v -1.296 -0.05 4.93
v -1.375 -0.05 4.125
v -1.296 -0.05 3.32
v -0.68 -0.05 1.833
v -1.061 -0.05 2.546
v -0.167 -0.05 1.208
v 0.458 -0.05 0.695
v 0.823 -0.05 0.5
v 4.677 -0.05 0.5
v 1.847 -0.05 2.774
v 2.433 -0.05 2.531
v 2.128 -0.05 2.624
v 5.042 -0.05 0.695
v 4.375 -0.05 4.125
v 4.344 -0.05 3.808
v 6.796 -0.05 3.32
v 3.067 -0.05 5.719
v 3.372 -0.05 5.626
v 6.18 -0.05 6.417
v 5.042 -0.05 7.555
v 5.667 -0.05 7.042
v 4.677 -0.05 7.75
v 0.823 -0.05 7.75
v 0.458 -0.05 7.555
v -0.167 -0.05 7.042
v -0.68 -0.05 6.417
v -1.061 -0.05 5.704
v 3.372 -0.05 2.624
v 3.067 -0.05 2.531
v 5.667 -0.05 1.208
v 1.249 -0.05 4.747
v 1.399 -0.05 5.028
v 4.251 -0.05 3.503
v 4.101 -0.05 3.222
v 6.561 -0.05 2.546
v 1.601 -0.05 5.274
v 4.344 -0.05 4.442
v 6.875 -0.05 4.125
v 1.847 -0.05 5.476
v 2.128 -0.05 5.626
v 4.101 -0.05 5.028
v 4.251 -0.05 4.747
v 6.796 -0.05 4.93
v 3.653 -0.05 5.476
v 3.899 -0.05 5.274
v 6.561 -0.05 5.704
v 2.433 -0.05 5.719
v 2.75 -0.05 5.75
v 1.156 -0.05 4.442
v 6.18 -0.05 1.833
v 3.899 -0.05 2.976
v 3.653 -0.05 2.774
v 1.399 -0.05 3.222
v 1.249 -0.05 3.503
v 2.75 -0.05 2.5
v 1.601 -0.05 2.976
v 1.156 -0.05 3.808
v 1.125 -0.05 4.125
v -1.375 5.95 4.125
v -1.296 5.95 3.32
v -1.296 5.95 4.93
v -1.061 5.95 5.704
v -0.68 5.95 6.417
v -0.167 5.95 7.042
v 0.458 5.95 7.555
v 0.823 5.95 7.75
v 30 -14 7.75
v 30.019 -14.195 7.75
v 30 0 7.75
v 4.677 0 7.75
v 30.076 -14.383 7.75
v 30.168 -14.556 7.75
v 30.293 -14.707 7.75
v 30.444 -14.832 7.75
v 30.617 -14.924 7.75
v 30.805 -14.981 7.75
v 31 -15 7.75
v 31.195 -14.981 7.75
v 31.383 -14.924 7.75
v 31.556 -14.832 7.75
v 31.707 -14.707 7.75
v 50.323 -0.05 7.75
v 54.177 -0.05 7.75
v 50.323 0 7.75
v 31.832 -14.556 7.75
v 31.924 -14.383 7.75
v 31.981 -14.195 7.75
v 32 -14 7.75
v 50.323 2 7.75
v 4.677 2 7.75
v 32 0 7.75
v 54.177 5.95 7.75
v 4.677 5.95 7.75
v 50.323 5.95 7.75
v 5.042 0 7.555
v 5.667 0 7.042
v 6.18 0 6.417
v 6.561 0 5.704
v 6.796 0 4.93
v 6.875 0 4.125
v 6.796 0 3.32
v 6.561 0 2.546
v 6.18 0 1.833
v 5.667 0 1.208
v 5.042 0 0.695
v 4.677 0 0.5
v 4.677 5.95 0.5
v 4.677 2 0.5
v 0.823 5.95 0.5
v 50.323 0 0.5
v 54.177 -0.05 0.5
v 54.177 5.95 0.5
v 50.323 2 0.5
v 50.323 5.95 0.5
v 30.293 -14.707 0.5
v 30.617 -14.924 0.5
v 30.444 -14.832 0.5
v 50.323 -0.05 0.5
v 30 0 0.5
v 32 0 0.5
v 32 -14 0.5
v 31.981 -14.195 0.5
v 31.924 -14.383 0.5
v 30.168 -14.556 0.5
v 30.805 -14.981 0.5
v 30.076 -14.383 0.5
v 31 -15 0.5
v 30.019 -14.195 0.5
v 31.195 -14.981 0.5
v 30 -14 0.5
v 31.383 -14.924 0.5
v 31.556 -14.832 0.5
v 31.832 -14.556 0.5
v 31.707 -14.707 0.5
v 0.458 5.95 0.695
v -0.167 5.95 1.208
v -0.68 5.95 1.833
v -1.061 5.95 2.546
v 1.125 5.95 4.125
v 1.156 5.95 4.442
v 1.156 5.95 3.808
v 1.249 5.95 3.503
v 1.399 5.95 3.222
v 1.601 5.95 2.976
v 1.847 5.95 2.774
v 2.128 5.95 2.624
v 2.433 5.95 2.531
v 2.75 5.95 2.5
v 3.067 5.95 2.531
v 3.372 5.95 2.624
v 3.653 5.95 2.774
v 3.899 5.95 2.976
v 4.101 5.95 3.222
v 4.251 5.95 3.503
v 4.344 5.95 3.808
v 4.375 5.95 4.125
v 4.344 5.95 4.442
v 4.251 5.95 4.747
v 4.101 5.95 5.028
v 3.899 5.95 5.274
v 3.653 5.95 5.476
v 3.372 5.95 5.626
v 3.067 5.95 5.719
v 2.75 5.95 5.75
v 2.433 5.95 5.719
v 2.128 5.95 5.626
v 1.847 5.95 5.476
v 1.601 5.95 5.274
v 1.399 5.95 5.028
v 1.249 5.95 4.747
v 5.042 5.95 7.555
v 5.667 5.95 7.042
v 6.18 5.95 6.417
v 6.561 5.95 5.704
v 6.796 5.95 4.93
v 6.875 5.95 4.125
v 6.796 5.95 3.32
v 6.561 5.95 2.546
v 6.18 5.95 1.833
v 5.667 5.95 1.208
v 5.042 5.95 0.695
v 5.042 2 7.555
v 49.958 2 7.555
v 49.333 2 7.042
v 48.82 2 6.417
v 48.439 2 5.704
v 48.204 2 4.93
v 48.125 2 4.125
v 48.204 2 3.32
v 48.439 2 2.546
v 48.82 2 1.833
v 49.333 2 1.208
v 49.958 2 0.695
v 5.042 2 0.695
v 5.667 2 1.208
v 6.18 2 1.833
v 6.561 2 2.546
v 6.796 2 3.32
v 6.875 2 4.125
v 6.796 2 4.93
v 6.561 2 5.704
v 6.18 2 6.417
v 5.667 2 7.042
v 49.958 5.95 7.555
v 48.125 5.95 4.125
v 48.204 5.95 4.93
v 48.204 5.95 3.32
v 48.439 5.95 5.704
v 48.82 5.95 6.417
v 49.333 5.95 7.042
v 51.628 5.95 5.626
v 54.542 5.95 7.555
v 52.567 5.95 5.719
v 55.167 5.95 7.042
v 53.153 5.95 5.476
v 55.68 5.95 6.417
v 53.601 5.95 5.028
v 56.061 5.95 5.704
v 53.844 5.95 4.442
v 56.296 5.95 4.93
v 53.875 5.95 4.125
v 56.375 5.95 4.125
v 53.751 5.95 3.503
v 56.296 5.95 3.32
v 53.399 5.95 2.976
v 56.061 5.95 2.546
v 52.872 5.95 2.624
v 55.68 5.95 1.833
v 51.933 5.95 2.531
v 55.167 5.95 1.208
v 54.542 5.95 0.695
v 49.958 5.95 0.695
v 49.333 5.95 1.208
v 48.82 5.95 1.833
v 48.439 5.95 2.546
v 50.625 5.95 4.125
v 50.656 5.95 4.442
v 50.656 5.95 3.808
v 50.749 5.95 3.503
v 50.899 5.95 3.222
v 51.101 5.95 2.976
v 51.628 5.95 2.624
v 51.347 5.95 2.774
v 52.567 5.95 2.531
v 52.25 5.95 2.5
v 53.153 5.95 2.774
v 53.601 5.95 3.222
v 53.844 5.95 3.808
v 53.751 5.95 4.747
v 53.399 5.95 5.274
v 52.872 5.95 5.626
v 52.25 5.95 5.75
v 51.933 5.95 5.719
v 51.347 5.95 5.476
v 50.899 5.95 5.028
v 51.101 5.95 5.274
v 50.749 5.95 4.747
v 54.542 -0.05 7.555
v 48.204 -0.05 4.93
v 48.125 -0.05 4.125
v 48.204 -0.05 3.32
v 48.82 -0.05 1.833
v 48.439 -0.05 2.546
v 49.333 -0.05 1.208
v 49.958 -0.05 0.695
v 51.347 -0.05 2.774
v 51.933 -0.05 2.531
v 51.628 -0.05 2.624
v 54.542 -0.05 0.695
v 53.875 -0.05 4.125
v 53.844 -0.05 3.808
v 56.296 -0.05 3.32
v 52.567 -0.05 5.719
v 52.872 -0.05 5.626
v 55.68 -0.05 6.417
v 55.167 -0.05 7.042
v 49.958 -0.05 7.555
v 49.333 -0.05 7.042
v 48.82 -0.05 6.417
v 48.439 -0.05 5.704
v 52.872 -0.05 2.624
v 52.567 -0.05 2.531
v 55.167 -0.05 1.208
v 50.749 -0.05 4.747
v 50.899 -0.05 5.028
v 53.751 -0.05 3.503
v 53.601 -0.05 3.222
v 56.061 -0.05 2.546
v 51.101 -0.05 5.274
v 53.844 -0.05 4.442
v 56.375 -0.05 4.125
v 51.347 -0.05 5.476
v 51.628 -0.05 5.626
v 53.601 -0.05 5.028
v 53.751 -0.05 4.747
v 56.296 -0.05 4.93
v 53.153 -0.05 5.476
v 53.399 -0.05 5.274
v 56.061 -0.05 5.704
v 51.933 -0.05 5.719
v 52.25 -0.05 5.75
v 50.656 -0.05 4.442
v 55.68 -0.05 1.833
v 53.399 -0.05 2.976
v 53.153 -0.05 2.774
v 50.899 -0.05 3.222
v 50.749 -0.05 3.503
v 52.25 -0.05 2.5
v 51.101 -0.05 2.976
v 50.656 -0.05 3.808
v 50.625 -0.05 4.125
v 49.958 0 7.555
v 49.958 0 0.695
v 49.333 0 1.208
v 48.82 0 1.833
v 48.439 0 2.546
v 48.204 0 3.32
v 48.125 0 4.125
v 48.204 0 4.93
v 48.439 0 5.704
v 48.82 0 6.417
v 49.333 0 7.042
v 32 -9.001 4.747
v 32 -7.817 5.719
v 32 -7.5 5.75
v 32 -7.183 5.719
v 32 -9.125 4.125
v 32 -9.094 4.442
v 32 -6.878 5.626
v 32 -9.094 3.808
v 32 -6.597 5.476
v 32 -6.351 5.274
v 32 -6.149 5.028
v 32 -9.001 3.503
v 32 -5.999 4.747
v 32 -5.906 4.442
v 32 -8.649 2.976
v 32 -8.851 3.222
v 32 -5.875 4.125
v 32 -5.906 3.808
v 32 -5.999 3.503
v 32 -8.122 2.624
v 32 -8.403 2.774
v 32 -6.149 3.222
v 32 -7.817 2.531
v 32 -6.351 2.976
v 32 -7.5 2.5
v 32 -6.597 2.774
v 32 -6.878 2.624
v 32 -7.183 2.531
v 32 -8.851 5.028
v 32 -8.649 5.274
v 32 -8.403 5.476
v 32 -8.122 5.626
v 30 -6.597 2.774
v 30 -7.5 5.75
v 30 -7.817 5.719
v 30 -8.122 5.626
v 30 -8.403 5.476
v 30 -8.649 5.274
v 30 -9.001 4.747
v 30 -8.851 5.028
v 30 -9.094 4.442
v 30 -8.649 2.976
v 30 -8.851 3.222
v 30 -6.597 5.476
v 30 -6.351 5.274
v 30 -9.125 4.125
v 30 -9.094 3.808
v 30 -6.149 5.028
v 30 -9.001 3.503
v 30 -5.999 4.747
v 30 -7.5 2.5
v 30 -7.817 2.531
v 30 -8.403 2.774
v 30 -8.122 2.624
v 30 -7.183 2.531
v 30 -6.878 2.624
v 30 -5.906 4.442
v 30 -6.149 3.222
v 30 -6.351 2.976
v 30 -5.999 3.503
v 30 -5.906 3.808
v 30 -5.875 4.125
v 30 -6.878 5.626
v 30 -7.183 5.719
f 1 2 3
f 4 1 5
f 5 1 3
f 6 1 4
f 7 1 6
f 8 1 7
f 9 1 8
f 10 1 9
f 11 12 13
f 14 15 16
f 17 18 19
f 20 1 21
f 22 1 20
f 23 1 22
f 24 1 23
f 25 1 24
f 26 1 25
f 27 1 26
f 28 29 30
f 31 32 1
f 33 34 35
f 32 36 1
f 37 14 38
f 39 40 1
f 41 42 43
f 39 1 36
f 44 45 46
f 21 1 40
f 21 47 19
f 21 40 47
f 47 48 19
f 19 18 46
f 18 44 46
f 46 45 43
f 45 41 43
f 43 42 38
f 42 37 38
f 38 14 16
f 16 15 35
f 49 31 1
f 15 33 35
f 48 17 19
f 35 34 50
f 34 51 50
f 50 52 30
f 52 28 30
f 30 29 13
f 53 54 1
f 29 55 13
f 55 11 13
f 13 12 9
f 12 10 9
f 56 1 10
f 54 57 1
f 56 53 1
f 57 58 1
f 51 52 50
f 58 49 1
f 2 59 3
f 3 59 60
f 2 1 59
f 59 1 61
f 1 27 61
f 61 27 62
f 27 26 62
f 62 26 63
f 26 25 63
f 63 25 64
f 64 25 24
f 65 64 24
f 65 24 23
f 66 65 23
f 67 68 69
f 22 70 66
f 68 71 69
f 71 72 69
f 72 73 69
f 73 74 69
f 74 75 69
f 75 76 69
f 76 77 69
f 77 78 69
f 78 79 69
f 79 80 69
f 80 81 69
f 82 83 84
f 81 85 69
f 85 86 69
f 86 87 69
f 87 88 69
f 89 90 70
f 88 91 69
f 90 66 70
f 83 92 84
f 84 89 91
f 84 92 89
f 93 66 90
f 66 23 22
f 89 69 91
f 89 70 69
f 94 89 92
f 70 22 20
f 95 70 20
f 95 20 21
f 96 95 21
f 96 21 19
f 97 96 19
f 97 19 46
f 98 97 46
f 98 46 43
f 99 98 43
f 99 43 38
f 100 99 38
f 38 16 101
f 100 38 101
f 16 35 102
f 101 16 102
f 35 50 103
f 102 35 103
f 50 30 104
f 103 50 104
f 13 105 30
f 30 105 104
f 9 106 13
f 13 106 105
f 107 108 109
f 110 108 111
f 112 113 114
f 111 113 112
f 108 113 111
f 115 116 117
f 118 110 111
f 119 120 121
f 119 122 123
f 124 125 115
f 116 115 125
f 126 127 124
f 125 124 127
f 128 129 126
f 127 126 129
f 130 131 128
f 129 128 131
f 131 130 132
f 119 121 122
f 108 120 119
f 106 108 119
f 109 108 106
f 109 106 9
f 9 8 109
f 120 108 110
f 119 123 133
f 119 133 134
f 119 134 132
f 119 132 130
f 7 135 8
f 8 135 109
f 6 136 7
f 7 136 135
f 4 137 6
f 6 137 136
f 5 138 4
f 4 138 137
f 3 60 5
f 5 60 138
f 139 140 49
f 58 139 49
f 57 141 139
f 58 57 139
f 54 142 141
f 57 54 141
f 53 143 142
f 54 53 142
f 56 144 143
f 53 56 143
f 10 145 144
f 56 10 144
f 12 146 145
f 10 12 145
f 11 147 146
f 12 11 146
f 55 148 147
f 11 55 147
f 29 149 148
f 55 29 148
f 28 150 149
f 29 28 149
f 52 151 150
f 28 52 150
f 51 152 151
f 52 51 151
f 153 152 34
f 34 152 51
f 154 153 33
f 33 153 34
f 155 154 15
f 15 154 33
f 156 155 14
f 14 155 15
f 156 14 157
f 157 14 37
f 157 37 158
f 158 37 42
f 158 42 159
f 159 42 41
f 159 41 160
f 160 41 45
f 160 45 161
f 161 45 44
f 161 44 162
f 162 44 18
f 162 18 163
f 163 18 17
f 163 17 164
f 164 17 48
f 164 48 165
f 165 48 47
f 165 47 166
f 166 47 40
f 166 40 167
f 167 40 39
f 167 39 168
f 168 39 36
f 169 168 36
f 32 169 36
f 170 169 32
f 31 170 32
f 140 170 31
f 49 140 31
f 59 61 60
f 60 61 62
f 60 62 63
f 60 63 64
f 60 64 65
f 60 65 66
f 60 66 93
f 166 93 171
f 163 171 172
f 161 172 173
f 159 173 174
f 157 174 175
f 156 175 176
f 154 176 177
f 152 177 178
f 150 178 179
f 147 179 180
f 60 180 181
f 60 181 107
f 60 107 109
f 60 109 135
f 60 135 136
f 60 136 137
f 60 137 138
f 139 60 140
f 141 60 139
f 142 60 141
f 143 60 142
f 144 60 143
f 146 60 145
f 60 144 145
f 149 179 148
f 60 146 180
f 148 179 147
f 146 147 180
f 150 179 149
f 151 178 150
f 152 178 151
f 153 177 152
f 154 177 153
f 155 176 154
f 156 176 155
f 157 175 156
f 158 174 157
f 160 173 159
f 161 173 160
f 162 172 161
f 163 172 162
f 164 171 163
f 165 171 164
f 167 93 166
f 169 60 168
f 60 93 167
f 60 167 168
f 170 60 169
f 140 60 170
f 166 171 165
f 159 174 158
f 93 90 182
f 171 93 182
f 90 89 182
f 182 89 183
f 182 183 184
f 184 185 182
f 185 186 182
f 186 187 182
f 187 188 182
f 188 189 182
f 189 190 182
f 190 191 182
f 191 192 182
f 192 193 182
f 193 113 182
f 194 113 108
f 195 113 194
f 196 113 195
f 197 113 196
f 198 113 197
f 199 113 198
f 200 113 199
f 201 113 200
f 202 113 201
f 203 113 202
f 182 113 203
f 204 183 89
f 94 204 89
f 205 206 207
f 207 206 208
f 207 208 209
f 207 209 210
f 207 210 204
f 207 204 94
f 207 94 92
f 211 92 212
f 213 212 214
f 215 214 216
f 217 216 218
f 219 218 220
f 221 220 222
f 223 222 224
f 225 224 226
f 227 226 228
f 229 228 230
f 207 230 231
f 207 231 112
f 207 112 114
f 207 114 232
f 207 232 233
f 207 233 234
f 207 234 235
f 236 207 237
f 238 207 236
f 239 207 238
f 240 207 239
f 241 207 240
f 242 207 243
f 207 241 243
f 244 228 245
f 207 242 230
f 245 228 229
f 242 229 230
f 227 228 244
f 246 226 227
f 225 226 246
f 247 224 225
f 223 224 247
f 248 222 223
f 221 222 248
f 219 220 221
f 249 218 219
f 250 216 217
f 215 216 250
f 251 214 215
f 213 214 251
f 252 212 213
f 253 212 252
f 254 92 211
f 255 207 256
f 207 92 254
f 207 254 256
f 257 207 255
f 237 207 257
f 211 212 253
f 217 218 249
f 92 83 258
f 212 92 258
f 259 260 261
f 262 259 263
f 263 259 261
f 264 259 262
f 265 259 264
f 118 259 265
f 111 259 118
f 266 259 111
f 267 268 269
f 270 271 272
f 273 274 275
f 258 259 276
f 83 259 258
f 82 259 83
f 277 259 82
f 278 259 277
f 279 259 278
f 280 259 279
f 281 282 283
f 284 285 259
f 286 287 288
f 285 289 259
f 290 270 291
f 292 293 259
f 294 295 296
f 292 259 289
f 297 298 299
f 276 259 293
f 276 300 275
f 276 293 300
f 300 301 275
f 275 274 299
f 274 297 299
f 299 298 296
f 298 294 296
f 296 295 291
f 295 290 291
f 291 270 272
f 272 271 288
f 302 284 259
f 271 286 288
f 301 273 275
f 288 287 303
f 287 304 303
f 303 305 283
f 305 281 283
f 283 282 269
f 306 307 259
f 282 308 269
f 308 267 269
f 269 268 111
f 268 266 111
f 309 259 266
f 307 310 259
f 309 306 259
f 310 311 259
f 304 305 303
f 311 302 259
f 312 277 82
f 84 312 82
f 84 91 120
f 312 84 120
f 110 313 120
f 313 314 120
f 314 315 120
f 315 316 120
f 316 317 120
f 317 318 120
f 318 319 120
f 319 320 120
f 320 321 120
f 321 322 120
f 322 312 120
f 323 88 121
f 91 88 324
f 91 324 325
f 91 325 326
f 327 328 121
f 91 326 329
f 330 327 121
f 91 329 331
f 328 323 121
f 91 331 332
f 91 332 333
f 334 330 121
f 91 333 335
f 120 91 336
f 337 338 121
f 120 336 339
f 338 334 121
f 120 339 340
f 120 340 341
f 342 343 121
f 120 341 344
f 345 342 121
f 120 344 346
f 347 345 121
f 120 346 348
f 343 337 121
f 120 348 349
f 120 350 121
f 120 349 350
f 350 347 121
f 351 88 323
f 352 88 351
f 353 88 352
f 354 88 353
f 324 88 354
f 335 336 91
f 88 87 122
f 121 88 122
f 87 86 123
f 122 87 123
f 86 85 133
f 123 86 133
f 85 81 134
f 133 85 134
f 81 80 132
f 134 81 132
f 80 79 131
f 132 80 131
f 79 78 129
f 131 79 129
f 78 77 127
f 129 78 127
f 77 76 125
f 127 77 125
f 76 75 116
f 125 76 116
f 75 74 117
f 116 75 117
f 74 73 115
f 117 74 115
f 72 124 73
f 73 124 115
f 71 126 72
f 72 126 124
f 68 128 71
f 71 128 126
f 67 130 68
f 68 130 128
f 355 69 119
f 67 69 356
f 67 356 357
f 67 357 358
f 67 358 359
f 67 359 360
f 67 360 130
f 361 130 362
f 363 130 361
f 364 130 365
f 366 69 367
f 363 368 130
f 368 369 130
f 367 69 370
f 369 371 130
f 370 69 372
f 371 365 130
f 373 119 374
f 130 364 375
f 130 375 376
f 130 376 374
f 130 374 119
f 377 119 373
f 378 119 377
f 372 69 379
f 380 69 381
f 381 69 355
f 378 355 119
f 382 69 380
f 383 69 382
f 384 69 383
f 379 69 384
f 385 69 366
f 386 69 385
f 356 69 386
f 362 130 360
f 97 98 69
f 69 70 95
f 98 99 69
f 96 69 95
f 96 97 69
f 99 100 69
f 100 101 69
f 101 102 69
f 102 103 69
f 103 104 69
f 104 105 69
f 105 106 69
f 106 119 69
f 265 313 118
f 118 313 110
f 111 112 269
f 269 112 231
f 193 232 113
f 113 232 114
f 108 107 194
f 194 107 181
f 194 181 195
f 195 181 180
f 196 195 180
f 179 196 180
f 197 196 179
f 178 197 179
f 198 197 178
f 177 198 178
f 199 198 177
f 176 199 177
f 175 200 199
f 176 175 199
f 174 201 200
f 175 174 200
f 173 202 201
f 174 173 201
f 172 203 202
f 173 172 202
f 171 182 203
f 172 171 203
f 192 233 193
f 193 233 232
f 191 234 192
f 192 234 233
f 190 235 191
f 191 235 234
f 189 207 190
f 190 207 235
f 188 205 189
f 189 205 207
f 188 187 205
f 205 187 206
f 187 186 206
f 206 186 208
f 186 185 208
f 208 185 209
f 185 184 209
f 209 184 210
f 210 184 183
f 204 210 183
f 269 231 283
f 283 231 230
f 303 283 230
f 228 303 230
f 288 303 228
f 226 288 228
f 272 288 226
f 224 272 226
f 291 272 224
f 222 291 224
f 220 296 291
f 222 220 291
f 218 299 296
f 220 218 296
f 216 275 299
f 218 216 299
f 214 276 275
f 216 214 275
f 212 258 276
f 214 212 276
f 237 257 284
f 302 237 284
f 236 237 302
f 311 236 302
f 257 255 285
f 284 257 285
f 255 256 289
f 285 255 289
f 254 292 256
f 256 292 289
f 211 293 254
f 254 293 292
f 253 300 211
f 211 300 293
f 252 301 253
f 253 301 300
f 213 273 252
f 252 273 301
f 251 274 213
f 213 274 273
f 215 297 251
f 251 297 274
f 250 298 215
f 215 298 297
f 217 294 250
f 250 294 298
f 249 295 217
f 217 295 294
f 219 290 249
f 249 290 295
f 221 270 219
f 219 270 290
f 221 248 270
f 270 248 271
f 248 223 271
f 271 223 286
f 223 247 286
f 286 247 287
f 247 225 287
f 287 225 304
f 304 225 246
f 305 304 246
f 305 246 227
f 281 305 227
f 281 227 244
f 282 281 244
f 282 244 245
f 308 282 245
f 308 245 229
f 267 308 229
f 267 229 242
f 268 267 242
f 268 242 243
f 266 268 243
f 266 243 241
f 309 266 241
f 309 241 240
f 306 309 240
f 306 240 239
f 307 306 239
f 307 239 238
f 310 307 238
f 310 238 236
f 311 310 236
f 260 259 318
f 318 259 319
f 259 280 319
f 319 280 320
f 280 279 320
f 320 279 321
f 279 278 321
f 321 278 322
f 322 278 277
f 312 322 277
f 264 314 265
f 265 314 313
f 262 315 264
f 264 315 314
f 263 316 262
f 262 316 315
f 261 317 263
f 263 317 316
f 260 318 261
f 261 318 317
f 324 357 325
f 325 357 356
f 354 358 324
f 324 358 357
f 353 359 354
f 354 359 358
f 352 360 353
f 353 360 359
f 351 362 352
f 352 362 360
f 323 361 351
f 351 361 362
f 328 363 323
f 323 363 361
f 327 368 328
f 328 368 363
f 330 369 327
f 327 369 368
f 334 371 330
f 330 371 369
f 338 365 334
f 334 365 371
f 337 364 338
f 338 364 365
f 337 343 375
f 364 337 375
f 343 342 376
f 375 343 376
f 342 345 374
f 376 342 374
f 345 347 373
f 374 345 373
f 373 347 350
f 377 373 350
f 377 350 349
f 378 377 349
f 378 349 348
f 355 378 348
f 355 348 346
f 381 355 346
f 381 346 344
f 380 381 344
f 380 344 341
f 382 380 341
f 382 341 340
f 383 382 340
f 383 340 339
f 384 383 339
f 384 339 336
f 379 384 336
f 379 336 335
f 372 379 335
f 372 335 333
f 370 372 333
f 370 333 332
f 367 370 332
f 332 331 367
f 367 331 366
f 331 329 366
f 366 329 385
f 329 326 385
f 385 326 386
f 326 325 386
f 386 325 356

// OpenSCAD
$fn = 32;

thickness = 2;

hole_dia = 3.25;

// Center to center spacing 
hole_spacing = 49.5;

// make bracket width wide enough for 2mm space around holes with flattened sides
width = hole_dia + 4 + 1;

// board height
board_height = 55;

// extrusion width
extrusion_width = 15;

// mount position
mount_pos = 30;

function hole_offset_x() = hole_dia / 2 + (board_height - hole_spacing - hole_dia) / 2;

//%translate([20, -7.5, 0]) cube([7.5,7.5,7.5]);

rotate([-90,0,0]) translate([0,-width/2,0])
difference(){
	make_bracket();
	translate([0,-5-width/2+.5,-30])
		cube([board_height, 5, 60]);
	translate([0,width/2-.5,-30])
			cube([board_height, 5, 60]);
}


module make_bracket(){
	difference(){
		union(){
			board_backing();
			board_supports();
			make_extrusion_mount();
		}
		
		holes();
	}
}

module make_extrusion_mount(){
	translate([mount_pos,-width/2, -extrusion_width]){
		difference(){
			translate([0, 0, thickness/2])
			union(){
				cube([thickness, width, extrusion_width - thickness/2]);
				translate([thickness/2,0,0]) rotate([-90,0,0])
					cylinder(r=thickness/2, h=width);
			}
			
	
			translate([-1, width/2,extrusion_width/2])
			rotate([0,90,0])
			cylinder(h=20, r= hole_dia/2);
		}
		
	}
	
}

module holes(){
	translate([hole_offset_x(), 0,-1]){
		cylinder(h=20, r= hole_dia/2);
		translate([49.5,0,0])  cylinder(h=20, r= hole_dia/2);
	}
}

module board_supports(){
	translate([hole_offset_x(), 0,-0.05]){
		cylinder(h=6, r= width/2);
		translate([49.5,0,0])  cylinder(h=6, r= width/2);
	}
}

module board_backing(){
	translate([width/2, -width/2,0])
	cube([board_height - width, width, thickness]);
}
